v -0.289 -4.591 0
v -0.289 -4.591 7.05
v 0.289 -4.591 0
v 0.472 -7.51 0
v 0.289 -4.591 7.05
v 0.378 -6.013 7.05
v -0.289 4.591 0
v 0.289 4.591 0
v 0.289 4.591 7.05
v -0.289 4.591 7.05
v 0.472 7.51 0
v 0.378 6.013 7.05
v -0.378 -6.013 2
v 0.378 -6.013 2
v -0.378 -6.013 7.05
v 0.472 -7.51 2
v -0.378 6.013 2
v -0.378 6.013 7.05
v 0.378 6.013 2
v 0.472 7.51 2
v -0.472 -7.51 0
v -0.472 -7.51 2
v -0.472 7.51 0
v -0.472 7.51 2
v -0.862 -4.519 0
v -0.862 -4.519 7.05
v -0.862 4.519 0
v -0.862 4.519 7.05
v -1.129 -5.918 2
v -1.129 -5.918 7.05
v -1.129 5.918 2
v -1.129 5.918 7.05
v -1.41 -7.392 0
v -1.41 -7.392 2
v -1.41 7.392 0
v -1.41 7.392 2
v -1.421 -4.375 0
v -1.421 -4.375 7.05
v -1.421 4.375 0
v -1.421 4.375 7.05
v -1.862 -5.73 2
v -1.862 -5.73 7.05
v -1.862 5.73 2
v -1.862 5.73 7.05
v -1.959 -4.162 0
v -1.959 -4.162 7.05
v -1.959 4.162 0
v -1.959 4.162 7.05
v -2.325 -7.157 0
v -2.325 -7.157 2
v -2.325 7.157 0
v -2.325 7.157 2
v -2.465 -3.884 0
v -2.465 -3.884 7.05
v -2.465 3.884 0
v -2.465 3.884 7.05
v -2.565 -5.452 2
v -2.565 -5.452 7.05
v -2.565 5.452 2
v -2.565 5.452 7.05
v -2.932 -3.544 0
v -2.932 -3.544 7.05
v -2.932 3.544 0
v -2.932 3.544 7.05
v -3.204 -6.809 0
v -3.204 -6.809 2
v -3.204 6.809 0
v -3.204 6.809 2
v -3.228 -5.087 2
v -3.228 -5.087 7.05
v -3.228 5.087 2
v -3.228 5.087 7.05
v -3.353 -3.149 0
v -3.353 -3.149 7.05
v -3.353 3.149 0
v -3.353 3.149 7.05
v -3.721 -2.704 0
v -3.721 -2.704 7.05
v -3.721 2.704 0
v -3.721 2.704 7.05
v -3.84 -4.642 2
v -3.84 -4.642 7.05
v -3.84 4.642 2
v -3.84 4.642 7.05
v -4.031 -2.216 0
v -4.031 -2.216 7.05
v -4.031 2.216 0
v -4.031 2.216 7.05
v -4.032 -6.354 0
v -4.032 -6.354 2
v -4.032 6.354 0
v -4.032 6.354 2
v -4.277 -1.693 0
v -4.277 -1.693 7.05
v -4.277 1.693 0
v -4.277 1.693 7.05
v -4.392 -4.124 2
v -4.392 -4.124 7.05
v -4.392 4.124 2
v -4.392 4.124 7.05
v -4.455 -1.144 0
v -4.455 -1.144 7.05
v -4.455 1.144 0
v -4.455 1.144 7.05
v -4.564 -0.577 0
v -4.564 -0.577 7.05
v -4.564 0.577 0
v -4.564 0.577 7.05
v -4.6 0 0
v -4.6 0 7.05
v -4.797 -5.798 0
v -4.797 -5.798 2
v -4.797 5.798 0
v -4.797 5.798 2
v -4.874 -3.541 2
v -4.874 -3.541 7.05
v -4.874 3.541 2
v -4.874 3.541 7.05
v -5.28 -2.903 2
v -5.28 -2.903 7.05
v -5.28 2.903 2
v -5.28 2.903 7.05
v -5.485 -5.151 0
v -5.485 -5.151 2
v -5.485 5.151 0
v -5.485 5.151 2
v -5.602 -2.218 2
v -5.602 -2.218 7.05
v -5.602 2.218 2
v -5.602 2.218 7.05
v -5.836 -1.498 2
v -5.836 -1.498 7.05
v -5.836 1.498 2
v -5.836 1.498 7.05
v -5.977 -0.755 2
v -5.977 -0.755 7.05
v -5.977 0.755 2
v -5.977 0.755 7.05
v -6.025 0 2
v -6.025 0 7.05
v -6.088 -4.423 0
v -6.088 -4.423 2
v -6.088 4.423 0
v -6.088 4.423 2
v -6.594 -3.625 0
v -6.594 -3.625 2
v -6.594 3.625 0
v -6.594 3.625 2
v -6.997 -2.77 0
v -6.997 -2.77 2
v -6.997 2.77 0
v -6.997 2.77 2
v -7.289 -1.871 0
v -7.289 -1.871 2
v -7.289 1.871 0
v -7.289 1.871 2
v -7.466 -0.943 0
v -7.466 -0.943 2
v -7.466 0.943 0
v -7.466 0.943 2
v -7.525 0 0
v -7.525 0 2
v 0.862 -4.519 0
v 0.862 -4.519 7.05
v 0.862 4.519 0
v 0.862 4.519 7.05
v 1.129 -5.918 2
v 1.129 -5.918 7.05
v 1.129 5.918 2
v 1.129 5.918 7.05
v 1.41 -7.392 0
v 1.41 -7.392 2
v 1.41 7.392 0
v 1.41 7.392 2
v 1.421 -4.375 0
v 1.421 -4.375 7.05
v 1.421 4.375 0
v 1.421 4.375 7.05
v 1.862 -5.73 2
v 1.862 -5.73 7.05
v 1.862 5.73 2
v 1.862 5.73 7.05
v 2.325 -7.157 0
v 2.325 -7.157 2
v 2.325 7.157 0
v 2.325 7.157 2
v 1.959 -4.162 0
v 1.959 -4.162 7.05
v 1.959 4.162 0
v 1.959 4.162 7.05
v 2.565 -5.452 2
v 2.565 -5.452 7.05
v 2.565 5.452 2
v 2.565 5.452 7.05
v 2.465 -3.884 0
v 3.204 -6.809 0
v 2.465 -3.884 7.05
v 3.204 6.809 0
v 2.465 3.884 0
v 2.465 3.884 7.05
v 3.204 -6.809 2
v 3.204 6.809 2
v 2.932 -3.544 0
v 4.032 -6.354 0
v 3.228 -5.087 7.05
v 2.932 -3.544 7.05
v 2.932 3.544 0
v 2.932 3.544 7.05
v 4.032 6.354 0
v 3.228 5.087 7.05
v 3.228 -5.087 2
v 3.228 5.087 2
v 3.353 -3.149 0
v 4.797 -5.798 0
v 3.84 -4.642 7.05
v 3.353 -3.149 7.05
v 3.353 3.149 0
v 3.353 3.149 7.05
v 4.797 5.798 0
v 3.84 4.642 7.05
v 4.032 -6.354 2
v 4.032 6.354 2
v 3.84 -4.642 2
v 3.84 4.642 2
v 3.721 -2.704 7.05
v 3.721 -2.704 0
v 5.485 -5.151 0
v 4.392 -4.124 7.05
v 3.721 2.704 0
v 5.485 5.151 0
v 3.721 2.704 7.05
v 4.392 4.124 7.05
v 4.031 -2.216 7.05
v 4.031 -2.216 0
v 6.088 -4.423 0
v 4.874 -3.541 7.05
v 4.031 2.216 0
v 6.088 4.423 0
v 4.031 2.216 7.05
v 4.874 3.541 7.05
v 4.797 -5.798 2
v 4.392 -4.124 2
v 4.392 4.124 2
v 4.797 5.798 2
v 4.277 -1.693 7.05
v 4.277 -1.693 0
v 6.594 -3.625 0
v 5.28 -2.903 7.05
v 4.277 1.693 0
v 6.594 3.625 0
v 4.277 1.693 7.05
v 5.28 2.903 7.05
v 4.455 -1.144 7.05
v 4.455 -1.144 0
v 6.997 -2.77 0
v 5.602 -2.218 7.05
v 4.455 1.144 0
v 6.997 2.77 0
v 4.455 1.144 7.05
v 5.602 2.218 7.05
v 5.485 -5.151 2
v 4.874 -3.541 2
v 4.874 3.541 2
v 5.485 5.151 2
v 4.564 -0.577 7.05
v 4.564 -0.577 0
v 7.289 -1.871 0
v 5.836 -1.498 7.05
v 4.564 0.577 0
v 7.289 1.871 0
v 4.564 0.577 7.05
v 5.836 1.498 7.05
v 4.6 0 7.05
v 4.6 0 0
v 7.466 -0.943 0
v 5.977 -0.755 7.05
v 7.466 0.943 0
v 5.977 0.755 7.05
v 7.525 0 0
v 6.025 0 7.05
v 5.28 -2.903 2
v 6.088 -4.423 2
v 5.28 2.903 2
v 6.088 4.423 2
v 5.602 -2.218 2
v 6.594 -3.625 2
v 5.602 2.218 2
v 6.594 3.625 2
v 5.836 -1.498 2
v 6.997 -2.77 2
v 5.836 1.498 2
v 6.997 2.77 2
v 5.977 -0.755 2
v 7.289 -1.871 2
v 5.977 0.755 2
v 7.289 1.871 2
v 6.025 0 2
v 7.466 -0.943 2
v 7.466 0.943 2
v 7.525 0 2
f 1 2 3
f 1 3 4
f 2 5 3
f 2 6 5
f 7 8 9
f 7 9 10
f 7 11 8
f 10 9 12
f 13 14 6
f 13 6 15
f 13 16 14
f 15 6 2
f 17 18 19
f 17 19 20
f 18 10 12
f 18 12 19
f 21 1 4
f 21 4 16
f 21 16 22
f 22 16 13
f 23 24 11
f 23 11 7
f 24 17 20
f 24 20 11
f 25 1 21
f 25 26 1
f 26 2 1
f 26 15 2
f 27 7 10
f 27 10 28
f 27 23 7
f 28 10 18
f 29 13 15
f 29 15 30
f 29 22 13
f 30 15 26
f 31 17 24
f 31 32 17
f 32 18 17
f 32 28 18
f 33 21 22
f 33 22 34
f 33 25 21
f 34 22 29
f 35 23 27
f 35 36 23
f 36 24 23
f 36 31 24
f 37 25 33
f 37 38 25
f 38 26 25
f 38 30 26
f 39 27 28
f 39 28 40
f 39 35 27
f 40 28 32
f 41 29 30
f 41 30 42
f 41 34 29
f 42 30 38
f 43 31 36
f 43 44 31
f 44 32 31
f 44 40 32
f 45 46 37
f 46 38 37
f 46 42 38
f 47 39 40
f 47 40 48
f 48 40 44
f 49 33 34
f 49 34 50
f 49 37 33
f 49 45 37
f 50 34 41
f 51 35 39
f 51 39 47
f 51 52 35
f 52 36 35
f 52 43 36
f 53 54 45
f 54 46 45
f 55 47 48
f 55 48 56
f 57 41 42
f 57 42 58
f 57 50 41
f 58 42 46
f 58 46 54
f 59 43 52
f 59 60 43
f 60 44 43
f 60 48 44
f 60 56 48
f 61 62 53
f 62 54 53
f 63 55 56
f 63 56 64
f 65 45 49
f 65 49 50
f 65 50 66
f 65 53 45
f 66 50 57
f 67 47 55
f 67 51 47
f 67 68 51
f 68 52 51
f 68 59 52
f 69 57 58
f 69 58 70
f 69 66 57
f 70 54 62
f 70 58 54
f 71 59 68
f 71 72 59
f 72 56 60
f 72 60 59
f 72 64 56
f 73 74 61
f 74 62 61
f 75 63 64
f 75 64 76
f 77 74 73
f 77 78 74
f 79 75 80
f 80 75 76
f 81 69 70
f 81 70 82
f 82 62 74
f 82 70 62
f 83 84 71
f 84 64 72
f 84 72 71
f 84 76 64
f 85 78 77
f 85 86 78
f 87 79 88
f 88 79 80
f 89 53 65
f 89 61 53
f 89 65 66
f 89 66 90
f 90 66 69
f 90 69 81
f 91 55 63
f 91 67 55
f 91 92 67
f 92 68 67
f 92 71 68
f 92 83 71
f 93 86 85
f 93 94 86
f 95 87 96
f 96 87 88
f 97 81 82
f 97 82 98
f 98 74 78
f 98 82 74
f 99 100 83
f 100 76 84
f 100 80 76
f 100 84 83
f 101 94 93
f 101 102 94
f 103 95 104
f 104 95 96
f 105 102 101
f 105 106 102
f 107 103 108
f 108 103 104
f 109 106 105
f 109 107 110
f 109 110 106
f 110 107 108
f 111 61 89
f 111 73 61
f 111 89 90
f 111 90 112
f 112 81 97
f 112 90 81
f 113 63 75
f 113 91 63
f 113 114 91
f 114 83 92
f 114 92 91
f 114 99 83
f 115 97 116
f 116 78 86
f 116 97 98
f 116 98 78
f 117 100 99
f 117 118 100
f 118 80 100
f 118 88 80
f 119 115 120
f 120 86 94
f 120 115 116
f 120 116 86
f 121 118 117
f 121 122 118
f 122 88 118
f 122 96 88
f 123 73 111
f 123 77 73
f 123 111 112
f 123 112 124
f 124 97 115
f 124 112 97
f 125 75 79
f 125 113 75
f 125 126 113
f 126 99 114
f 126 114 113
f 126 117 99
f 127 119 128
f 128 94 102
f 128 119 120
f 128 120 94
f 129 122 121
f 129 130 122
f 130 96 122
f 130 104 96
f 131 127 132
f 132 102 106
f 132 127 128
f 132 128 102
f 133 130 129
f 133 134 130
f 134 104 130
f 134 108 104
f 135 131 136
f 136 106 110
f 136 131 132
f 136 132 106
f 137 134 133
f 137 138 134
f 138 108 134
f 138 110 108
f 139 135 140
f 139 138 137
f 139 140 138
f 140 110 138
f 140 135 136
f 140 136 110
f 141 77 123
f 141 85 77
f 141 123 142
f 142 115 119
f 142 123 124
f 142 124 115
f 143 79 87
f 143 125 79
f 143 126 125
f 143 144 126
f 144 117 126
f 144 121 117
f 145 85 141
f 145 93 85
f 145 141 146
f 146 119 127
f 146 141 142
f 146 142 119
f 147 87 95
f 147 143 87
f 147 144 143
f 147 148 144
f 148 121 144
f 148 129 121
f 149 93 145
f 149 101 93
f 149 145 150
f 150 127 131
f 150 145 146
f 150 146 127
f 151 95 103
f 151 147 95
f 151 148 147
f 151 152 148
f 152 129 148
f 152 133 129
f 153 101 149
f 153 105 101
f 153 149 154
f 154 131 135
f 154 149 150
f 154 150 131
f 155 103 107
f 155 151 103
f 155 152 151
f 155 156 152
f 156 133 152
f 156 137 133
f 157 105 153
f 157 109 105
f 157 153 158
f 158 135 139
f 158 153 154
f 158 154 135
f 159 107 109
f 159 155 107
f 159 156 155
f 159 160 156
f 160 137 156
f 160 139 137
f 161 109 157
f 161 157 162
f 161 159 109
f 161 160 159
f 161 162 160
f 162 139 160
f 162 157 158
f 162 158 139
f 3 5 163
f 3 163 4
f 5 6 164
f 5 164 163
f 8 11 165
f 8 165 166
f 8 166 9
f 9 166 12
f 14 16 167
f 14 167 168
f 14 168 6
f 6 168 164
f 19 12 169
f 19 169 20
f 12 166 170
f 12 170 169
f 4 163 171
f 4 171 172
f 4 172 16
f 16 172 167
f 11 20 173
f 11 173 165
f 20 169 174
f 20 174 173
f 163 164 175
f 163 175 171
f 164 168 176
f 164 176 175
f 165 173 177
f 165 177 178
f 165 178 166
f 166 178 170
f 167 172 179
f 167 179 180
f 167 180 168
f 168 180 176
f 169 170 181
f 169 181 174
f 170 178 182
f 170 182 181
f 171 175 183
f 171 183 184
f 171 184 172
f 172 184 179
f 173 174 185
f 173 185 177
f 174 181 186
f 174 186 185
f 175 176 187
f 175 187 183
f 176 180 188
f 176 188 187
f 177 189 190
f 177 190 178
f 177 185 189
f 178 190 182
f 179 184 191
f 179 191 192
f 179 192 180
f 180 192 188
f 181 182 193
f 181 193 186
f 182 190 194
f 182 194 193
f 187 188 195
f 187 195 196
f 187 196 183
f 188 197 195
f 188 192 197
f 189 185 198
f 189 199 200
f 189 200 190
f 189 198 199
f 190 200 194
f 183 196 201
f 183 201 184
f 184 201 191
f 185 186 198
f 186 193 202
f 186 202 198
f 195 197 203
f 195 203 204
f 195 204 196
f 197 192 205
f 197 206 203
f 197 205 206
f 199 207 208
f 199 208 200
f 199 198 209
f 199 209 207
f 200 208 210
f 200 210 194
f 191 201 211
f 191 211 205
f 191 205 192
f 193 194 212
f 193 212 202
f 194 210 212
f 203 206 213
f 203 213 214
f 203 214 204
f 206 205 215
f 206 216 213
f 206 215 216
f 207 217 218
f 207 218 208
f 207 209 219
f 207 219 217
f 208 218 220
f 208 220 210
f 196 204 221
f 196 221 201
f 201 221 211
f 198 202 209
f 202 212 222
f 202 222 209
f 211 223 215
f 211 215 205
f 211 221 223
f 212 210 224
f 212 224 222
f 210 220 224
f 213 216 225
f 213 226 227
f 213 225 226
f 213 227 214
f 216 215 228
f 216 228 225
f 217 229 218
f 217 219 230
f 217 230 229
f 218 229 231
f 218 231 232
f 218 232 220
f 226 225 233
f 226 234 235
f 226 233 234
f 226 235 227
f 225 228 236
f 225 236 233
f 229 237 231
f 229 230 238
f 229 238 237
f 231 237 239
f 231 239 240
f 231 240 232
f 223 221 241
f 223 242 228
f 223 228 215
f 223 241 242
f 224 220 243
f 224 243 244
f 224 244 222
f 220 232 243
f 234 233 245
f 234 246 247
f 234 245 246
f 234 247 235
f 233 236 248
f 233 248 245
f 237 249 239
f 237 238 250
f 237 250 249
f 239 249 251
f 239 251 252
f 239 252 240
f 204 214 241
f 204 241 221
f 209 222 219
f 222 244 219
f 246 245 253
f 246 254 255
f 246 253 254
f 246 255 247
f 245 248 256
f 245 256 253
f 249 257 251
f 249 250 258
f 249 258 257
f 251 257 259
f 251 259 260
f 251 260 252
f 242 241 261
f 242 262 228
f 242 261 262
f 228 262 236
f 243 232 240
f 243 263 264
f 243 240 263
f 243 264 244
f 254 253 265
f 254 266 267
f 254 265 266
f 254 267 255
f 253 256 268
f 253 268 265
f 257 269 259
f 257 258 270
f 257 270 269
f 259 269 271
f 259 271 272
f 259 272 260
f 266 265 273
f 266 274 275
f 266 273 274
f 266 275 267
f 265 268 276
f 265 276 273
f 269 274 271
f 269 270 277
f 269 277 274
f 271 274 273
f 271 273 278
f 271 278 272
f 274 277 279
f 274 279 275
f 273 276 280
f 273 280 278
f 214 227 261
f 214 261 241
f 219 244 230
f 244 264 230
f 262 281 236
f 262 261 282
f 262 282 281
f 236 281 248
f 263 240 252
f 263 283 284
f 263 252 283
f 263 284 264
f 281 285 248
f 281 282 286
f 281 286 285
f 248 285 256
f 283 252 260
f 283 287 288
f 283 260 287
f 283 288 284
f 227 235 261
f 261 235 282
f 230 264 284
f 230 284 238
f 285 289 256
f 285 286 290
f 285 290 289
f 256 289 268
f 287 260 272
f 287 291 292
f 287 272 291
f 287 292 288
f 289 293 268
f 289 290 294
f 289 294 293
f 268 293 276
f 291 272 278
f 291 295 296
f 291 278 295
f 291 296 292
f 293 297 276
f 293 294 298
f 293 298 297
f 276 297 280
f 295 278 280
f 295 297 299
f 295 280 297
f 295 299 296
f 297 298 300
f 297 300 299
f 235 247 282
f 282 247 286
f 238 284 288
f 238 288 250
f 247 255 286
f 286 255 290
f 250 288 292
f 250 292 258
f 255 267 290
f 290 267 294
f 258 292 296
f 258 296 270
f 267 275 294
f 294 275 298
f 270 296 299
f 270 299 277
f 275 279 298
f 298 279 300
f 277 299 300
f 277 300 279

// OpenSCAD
// file: ../Parameters.scad
//Main tube diameter [mm]
main_tube_outer_diameter = 25.3;
main_tube_inner_diameter = 22;

//Tube for undercarriage [mm]
tube_for_undercarriage_outer_diameter = 10;
tube_for_undercarriage_inner_diameter = 5;

//Screw diameter and nut for M4 [mm]
M4_screw_diameter=4.5;
Nut_height_M4 = 3.2;
Nut_diameter_M4 = 7.66;


//Screw diameter and nut for M3 [mm]
M3_screw_diameter = 3.2;
Nut_height_M3 = 1.7;
Nut_diameter_M3 = 6.05;
// main file
include <../Parameters.scad>


888_3010_prumer_vnitrni = 9.2;
888_3010_prumer = 12.05;
888_3010_osazeni_prumer = 888_3010_prumer + 3;
888_3010_osazeni_vyska = 2;
888_3010_vyska = 10.1/2;


module 888_3010(draft = true){
    difference(){
        union(){
            cylinder(h = 888_3010_osazeni_vyska, d = 888_3010_osazeni_prumer, $fn = 50);
            translate([0,0,888_3010_osazeni_vyska])
                cylinder(h = 888_3010_vyska, d = 888_3010_prumer, $fn = 50);
        }
        cylinder(h = 2 * 888_3010_vyska , d = 888_3010_prumer_vnitrni, $fn = 50);
    }
}
888_3010();
